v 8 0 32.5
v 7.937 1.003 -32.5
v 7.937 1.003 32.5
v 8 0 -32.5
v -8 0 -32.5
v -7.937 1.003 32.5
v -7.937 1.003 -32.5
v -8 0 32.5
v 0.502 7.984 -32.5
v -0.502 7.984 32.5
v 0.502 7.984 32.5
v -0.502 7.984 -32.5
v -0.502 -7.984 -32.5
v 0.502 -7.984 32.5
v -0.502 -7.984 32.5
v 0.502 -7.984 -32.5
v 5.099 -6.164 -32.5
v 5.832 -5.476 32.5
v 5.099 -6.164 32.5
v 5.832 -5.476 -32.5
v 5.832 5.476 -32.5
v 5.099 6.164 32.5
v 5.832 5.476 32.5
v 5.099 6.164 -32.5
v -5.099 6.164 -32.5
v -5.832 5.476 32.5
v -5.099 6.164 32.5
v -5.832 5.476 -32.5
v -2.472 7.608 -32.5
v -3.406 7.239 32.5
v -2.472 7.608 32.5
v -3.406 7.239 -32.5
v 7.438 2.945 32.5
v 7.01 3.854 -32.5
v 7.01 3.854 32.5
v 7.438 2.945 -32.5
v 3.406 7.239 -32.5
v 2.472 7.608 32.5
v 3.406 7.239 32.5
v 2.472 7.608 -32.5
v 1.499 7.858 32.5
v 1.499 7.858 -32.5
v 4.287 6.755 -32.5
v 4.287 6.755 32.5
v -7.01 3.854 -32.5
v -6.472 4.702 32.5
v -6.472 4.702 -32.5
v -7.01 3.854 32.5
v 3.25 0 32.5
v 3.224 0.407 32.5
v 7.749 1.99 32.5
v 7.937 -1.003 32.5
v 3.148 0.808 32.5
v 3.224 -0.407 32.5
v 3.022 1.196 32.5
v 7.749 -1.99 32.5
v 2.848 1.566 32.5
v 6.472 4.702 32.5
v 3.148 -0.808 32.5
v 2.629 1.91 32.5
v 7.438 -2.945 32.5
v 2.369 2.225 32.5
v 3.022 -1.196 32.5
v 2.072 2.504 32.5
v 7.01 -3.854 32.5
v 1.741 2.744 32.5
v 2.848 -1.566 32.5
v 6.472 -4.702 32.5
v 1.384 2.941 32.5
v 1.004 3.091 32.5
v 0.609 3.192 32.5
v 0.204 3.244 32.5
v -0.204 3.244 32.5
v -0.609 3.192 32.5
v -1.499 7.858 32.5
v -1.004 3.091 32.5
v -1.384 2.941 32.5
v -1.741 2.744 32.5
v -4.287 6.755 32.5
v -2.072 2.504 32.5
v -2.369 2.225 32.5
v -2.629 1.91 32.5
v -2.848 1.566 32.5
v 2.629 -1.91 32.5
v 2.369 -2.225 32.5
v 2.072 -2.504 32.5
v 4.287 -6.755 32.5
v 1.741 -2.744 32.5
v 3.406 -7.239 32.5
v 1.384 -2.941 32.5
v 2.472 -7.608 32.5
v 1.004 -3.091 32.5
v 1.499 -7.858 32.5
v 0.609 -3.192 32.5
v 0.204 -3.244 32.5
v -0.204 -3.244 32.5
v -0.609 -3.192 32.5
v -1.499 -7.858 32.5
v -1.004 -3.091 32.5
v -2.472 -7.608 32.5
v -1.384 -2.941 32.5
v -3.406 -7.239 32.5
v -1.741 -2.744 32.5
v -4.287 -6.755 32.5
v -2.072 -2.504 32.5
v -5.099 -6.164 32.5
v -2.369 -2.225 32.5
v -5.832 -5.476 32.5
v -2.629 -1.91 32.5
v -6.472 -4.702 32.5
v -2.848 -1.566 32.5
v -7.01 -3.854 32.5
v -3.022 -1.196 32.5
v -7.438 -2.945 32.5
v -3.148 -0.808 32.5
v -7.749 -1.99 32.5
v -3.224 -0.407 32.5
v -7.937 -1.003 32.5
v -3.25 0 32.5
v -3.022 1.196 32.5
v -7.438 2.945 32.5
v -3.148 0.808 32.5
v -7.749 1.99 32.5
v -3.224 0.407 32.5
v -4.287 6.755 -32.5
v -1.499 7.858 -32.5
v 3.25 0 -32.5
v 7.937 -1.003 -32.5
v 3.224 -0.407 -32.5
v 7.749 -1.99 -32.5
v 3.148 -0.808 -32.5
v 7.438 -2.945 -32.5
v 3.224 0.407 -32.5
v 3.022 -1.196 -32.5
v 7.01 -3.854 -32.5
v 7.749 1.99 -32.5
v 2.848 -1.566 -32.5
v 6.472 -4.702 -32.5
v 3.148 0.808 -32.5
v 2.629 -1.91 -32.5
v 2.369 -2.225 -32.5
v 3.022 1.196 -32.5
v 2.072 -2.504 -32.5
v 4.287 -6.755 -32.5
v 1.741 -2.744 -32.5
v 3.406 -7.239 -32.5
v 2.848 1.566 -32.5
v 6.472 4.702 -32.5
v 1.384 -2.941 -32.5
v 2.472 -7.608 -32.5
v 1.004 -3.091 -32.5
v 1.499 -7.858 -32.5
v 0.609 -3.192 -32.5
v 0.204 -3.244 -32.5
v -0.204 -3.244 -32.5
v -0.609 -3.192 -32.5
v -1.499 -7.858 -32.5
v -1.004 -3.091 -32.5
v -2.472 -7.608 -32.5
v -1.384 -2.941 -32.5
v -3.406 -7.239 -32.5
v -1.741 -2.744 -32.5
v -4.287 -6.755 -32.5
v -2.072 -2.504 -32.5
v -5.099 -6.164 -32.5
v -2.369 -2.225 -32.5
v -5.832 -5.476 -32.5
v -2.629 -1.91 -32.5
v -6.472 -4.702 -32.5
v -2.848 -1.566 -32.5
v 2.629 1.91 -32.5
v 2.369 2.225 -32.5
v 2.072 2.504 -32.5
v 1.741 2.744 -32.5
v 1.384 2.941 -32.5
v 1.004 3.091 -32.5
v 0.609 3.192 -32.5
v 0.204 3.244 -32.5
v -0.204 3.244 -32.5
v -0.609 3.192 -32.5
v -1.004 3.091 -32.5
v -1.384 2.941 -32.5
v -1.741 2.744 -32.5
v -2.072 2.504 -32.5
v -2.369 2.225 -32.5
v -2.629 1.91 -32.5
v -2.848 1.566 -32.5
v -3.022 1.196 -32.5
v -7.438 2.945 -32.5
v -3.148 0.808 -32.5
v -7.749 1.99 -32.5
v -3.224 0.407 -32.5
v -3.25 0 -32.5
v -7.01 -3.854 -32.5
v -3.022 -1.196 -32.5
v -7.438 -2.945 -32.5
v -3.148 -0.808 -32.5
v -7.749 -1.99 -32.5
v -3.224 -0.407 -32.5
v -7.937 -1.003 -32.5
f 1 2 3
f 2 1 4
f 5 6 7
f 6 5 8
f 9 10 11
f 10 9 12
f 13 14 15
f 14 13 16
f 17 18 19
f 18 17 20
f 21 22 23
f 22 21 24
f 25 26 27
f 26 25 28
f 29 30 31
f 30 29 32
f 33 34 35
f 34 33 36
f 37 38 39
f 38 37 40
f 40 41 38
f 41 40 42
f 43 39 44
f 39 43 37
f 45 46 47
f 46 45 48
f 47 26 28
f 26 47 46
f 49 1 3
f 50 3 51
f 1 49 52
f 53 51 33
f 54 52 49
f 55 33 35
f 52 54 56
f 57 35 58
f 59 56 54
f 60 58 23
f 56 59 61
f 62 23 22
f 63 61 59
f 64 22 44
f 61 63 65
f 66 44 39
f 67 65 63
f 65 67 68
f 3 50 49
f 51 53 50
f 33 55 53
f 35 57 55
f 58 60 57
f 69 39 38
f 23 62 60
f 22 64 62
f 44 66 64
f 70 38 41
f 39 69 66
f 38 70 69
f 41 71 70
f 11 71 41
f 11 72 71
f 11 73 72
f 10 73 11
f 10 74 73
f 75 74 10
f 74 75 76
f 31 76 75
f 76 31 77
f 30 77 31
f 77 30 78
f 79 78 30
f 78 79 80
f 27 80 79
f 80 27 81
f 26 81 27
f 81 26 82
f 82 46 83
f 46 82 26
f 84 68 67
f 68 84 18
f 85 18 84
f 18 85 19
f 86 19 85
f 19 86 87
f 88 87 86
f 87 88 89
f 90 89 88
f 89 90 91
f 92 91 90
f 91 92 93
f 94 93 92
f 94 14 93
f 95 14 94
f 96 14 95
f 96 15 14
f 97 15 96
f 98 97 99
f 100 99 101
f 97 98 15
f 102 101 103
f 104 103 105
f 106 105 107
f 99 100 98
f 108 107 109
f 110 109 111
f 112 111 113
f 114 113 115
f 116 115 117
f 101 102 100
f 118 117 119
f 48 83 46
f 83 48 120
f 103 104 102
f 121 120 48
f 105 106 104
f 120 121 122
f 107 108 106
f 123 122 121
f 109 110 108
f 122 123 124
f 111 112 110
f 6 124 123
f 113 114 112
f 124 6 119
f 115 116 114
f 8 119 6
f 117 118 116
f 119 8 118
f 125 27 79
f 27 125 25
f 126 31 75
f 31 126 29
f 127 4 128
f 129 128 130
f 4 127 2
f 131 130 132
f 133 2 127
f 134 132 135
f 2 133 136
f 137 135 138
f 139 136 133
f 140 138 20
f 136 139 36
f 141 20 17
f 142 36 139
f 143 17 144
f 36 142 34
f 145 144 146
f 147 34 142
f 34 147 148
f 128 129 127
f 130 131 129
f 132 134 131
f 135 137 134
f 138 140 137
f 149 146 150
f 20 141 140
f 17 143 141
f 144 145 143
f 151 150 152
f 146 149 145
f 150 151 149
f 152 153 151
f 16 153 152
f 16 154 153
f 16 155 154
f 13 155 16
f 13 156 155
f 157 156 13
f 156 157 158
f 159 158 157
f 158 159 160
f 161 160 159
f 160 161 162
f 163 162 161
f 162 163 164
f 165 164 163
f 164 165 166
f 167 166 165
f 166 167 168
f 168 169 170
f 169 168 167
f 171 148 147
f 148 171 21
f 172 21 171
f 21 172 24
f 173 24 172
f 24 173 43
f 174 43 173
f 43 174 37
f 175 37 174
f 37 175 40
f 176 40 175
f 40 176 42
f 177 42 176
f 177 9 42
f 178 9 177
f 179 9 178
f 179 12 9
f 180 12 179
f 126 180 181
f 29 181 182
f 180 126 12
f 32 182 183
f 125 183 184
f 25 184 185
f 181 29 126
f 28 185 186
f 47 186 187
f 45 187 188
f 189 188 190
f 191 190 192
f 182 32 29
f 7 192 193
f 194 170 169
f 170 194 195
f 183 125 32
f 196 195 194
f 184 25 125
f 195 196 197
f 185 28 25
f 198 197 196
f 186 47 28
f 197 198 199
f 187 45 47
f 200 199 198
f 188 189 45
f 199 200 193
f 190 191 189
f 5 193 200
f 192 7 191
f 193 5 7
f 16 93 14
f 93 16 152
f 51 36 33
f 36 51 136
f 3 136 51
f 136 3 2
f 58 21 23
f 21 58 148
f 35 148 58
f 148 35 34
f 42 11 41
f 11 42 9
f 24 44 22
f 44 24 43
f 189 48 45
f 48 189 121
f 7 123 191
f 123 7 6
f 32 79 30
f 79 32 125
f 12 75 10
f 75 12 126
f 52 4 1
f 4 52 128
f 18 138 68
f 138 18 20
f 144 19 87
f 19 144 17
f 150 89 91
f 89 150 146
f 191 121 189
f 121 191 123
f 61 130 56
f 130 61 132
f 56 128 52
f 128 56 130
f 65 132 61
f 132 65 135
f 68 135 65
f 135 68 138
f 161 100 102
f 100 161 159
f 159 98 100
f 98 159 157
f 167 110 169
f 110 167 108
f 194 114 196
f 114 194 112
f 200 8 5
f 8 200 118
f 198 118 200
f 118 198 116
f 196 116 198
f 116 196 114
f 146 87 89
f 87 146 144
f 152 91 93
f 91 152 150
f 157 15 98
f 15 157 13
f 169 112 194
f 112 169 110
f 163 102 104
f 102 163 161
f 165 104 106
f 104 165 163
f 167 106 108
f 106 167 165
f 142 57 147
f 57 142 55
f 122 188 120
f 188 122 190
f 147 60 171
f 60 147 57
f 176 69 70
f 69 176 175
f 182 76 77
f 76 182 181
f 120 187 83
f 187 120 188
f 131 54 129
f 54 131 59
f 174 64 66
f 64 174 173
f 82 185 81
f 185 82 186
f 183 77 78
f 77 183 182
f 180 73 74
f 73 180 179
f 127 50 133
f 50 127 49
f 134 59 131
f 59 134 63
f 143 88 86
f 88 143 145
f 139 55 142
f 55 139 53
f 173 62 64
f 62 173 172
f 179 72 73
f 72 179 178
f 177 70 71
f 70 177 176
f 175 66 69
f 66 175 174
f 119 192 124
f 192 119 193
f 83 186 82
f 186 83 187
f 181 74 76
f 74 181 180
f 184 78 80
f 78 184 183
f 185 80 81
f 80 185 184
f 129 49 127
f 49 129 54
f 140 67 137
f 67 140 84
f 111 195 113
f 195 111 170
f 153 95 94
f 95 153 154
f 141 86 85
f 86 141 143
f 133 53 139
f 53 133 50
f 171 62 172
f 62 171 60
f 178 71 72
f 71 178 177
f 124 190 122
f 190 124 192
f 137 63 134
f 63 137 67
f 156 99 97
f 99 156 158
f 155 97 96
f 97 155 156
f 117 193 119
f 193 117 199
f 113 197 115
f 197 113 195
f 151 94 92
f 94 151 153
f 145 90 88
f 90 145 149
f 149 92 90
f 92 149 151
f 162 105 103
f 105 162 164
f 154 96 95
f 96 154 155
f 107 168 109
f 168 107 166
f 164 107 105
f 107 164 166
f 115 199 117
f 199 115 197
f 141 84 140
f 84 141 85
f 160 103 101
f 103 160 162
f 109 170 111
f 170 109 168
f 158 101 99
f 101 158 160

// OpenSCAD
$fn = 50;


difference() {
	union() {
		translate(v = [0, 0, -32.5000000000]) {
			cylinder(h = 65, r = 8.0000000000);
		}
	}
	union() {
		translate(v = [0, 0, -100.0000000000]) {
			cylinder(h = 200, r = 3.2500000000);
		}
	}
}
